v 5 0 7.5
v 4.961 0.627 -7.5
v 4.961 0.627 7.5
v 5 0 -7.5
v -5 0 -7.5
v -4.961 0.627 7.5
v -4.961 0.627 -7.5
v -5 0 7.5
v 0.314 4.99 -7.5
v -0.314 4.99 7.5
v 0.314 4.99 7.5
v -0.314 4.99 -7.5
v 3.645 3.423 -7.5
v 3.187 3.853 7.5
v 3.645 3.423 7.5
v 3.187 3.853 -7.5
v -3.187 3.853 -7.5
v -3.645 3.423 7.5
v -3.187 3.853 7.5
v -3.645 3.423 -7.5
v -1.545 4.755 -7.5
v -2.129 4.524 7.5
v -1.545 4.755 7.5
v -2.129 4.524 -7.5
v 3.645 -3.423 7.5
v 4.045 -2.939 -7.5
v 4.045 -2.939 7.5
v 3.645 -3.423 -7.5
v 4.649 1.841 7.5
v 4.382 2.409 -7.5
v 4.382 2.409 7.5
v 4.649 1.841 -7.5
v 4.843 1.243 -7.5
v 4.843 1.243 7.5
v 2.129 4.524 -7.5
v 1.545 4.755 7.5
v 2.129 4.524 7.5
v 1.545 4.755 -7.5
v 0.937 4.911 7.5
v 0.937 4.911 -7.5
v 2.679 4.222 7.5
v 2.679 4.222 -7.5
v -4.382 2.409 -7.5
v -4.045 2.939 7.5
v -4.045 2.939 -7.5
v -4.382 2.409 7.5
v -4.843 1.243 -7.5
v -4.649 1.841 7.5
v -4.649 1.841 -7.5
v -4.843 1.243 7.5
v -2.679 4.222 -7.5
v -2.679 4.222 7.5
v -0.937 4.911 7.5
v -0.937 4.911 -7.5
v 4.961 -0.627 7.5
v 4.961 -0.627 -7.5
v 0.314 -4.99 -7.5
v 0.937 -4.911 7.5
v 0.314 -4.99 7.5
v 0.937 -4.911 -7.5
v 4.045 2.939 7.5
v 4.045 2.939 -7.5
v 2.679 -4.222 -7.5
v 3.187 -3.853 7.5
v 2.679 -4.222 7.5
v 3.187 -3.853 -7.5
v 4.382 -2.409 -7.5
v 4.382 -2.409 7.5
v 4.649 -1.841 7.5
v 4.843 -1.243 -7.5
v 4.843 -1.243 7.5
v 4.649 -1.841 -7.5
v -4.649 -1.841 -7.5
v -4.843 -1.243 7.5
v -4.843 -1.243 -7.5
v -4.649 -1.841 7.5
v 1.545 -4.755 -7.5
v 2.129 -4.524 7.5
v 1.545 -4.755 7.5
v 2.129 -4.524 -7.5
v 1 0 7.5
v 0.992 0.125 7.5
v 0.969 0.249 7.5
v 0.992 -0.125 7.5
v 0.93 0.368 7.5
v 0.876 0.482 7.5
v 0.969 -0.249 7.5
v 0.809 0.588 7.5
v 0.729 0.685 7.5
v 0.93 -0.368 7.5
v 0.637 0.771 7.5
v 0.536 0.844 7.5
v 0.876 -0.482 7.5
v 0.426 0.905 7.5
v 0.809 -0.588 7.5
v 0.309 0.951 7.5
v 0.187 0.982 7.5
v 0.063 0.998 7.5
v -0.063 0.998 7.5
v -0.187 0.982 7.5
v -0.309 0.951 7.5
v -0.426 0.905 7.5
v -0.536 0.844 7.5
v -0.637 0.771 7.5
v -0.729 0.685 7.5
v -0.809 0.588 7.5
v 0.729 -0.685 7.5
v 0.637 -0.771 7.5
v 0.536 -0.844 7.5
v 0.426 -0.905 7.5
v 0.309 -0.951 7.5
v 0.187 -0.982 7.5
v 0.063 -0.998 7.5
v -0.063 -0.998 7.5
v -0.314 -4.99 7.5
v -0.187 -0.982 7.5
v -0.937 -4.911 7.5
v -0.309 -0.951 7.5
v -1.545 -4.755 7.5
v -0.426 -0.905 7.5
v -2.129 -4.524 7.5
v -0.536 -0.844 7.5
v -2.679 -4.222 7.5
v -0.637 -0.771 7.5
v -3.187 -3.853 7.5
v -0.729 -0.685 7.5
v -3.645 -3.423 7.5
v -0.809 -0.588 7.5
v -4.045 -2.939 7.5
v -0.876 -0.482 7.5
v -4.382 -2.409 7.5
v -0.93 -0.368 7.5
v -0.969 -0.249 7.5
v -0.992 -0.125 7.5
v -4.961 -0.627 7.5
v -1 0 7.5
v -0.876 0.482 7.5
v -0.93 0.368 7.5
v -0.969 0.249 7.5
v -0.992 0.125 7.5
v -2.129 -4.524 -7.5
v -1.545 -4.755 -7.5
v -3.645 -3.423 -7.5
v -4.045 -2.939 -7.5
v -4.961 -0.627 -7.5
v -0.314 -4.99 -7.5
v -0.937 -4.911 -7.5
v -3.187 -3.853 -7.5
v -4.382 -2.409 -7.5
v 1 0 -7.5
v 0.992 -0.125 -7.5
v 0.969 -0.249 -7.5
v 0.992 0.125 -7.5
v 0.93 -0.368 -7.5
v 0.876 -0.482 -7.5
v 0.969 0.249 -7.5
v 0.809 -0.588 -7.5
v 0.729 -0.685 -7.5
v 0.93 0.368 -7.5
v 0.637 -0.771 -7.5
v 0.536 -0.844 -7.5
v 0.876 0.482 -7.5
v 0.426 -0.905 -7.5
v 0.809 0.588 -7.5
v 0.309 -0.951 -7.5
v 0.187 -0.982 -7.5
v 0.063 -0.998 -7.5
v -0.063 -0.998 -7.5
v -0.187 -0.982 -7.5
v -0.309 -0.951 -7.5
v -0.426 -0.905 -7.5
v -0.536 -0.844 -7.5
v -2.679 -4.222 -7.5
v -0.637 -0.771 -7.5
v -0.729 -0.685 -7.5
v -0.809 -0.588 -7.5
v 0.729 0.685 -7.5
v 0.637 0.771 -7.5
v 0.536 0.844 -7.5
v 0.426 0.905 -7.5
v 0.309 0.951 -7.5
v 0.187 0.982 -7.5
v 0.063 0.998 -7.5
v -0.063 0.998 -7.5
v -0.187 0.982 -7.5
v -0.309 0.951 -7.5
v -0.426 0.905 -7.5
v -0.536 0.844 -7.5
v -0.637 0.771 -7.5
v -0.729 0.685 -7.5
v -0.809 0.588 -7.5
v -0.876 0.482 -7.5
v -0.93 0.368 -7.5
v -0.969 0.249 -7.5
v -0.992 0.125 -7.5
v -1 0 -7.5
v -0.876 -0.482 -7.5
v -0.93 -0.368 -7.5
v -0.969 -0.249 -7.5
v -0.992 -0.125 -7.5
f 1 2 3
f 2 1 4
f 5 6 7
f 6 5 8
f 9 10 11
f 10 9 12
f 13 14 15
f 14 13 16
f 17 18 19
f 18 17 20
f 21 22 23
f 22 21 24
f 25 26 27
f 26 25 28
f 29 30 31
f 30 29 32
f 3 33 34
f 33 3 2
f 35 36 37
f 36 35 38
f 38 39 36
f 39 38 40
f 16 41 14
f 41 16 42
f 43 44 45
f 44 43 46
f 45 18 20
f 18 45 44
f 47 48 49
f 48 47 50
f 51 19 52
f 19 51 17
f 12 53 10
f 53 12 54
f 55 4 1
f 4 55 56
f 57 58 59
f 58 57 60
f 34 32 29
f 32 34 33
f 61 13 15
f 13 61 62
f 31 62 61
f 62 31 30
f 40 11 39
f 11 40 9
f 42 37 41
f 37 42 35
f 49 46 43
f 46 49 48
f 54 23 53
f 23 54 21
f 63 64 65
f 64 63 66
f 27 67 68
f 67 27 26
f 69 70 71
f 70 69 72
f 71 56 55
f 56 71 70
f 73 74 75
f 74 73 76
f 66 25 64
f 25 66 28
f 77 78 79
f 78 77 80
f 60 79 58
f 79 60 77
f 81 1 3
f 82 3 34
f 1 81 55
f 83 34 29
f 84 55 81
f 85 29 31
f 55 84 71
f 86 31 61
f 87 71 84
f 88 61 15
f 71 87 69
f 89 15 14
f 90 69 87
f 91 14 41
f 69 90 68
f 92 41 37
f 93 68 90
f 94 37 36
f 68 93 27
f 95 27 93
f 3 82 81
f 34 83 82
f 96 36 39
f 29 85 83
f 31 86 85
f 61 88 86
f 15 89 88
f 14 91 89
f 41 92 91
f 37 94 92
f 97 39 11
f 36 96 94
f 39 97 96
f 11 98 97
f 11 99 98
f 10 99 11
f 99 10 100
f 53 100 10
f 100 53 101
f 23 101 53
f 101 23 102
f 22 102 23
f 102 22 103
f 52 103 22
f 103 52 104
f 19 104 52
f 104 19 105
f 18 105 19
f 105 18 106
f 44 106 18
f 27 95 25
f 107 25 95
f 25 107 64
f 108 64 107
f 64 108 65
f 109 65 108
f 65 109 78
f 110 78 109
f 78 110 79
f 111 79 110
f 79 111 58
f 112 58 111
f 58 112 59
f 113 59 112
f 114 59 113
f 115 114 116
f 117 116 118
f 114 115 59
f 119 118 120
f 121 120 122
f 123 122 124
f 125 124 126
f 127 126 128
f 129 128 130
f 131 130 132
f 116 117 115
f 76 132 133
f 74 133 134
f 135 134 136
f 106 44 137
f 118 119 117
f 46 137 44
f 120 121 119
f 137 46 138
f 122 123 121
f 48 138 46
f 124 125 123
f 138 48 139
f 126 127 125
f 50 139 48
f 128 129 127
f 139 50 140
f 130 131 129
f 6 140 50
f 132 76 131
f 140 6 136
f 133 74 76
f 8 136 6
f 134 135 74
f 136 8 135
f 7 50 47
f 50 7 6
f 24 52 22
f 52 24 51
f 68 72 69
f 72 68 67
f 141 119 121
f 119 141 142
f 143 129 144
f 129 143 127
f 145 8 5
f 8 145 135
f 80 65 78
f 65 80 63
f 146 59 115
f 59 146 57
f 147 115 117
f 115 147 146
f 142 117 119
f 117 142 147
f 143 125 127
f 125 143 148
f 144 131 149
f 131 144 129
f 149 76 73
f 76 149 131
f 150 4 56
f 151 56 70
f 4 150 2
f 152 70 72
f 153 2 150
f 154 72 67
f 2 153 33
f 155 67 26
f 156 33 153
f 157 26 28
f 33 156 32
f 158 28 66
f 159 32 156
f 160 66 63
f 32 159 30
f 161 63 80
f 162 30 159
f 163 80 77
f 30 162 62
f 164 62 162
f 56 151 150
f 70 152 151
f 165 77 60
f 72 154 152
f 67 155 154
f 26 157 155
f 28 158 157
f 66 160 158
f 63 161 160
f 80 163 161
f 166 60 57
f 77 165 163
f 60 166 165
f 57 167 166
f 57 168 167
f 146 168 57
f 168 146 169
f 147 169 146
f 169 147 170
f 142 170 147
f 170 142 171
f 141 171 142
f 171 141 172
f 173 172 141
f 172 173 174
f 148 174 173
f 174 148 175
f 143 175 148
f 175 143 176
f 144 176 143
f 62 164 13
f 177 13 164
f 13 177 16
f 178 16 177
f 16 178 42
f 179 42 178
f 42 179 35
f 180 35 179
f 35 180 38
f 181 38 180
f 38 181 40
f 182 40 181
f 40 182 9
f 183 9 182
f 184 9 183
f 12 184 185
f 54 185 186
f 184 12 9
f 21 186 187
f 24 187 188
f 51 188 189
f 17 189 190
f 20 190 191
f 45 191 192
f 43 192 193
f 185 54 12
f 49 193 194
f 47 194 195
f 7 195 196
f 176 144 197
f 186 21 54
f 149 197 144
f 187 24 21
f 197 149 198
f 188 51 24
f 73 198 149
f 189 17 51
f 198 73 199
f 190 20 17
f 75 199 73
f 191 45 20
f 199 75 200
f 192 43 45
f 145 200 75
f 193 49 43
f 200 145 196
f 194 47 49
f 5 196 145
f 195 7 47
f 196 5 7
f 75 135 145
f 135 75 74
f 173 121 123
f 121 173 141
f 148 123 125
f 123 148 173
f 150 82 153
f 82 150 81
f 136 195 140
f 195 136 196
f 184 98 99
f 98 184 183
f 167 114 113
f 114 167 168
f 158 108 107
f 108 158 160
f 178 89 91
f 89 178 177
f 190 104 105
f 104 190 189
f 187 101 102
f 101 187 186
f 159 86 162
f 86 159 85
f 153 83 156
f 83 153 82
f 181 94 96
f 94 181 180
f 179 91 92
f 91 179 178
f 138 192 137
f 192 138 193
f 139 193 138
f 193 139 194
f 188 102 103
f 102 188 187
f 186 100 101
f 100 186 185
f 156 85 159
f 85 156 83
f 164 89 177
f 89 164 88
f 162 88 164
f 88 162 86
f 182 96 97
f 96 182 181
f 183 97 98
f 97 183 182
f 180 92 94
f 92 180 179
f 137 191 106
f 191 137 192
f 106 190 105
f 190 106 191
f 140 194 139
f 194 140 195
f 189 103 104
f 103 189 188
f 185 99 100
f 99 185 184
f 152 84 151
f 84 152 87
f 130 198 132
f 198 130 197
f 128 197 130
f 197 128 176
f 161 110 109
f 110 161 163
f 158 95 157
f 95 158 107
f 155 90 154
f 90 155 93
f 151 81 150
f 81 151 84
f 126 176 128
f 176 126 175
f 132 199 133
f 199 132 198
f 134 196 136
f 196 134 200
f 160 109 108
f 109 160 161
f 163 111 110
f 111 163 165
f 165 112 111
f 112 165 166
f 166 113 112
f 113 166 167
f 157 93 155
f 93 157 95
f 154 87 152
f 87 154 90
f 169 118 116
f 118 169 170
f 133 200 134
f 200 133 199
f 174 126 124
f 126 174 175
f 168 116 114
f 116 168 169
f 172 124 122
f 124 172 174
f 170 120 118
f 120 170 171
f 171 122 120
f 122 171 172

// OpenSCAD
$fn = 50;


difference() {
	union() {
		translate(v = [0, 0, -7.5000000000]) {
			cylinder(h = 15, r = 5.0000000000);
		}
	}
	union() {
		translate(v = [0, 0, -100.0000000000]) {
			cylinder(h = 200, r = 1.0000000000);
		}
	}
}
